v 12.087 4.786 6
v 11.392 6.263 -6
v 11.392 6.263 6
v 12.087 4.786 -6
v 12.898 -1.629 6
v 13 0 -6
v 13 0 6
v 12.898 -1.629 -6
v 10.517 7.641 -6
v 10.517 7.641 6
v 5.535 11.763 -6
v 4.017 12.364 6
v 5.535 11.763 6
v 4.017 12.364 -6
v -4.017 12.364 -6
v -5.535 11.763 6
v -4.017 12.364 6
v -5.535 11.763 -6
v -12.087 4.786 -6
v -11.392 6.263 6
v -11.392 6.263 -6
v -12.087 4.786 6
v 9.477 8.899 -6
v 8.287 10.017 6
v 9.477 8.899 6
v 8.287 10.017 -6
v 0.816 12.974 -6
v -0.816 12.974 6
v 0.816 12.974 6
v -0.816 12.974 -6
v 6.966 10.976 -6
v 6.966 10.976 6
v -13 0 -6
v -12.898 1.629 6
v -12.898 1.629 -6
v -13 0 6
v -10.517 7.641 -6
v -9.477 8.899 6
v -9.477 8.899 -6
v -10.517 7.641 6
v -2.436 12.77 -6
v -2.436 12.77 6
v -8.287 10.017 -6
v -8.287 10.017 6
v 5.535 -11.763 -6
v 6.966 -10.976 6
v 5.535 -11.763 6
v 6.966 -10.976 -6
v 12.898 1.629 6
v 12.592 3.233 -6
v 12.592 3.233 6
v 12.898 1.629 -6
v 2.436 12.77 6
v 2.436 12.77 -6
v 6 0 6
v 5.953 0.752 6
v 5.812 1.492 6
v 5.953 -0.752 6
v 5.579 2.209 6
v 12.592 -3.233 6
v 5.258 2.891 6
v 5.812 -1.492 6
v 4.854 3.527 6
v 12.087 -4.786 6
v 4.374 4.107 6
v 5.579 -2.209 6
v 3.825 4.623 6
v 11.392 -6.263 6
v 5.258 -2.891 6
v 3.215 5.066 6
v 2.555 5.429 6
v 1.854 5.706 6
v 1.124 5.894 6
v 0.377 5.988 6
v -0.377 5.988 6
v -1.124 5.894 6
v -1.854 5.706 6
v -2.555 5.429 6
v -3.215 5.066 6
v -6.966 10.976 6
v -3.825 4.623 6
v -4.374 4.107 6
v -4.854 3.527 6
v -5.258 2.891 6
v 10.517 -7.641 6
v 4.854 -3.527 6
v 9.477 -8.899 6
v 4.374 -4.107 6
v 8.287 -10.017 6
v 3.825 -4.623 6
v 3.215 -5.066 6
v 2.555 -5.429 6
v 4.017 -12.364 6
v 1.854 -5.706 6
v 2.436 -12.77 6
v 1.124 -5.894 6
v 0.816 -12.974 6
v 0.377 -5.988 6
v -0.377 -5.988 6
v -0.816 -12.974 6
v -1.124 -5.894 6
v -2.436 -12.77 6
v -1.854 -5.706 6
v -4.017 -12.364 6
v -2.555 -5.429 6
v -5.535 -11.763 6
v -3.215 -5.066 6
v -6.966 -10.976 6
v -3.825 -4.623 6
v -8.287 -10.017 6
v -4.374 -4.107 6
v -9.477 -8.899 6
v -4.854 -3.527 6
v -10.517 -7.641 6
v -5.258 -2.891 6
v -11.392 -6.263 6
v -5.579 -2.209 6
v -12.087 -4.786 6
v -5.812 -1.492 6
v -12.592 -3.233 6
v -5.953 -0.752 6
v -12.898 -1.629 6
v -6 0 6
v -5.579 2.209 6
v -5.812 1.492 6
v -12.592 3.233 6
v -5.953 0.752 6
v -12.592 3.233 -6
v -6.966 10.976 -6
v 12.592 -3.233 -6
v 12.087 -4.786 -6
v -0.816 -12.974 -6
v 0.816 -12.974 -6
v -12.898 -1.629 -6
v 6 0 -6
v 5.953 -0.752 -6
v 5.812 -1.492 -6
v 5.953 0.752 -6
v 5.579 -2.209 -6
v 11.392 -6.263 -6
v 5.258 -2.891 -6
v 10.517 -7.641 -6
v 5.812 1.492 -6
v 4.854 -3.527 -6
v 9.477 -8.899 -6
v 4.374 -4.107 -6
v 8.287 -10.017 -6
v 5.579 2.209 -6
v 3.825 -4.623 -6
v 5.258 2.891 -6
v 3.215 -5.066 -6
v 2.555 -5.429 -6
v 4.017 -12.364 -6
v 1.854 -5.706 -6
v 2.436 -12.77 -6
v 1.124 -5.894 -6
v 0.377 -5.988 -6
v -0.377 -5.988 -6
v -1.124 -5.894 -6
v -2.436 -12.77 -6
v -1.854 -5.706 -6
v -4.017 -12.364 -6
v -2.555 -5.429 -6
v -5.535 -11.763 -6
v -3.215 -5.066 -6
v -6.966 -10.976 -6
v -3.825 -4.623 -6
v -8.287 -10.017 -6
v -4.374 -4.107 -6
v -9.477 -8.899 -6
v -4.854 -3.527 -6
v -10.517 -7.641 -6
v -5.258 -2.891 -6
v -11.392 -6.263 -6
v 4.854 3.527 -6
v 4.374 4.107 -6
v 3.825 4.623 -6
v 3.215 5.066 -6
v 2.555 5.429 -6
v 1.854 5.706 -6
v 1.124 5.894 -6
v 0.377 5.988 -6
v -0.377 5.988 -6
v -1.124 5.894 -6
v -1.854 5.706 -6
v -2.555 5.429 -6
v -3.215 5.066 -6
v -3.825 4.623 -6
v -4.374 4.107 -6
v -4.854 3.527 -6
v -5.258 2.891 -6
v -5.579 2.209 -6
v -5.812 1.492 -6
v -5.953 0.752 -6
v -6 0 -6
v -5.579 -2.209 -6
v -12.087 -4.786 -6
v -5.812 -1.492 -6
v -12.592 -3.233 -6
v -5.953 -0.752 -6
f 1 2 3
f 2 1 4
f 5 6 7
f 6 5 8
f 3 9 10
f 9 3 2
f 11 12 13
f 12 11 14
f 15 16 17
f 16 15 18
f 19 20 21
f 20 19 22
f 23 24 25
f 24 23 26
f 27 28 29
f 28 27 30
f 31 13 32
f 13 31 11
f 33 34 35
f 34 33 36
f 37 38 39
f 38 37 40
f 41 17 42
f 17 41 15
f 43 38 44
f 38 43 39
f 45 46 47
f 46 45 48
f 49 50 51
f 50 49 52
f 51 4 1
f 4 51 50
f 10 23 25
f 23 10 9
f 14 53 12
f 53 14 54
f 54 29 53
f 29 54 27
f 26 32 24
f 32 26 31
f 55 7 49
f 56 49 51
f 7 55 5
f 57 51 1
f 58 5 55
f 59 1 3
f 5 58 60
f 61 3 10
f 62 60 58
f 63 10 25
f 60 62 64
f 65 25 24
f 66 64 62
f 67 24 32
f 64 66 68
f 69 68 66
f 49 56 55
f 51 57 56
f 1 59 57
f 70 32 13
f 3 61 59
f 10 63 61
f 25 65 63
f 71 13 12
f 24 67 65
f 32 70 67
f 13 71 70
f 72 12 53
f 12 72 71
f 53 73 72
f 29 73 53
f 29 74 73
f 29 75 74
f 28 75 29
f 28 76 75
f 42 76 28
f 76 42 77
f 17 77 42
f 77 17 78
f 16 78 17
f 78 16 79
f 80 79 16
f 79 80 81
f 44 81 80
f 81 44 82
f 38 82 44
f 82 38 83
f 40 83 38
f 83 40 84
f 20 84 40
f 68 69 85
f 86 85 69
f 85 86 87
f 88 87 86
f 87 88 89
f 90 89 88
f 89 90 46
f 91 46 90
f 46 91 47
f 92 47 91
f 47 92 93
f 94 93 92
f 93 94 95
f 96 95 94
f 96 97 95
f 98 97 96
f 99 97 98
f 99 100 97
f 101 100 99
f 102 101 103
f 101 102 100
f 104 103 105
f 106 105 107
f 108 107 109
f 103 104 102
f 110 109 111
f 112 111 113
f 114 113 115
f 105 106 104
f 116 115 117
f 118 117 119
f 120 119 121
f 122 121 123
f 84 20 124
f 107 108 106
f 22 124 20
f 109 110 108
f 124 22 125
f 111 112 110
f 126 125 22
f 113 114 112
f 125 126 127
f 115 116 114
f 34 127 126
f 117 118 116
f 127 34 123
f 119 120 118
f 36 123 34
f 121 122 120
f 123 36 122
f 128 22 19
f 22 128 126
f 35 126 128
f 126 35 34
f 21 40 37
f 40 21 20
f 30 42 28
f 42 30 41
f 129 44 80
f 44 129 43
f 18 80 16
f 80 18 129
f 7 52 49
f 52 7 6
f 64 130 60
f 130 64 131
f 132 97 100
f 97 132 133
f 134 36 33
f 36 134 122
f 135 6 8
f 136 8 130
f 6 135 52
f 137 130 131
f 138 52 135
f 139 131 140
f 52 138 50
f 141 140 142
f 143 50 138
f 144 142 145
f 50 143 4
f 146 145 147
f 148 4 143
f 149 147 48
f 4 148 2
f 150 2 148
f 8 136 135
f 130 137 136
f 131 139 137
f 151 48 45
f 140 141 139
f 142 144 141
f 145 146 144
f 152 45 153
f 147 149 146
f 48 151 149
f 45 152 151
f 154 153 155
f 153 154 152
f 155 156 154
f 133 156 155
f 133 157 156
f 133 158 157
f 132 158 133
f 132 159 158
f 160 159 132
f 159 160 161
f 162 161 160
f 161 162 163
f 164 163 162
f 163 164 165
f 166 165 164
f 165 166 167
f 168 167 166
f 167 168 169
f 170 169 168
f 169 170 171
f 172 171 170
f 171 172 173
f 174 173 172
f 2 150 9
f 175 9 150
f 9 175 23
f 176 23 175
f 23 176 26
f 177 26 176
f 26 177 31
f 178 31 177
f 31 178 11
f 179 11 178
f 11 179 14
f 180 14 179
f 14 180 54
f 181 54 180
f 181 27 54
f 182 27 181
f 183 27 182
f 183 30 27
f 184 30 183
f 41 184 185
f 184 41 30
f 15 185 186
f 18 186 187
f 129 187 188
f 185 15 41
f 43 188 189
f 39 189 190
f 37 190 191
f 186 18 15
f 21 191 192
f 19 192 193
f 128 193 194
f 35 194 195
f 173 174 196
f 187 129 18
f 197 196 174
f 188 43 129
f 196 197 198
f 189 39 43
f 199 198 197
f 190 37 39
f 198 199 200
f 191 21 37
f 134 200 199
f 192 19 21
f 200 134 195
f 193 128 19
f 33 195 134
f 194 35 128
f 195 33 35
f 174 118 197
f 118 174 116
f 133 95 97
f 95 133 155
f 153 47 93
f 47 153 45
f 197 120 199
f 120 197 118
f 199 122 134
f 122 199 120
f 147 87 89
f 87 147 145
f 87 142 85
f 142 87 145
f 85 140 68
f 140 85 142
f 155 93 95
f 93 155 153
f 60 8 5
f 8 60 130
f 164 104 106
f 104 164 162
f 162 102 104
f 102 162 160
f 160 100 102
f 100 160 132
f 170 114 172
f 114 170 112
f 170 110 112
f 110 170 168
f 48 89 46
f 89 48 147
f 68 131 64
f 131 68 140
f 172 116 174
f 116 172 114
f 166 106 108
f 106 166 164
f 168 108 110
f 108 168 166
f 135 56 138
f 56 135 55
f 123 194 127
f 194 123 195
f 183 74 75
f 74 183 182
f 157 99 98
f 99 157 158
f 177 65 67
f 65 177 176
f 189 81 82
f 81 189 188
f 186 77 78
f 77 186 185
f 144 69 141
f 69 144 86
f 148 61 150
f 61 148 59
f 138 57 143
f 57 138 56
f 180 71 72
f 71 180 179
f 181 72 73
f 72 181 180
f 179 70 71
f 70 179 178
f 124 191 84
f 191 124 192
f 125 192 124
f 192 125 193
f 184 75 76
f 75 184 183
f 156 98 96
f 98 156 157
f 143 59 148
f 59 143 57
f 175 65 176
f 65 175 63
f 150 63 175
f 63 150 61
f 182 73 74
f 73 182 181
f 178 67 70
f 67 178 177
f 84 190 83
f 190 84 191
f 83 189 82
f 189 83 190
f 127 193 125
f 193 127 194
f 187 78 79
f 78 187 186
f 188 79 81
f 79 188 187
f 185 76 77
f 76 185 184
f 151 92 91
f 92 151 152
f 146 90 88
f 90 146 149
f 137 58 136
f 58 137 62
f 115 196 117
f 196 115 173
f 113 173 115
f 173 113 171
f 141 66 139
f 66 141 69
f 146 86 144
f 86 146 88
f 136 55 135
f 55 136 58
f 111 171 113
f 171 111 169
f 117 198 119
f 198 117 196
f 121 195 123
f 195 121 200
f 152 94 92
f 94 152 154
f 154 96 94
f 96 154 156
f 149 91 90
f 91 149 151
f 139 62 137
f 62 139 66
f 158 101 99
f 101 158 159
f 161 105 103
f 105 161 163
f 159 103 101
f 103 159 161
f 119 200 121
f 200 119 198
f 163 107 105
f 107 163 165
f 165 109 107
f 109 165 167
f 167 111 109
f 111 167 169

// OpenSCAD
$fn = 50;


difference() {
	union() {
		translate(v = [0, 0, -6.0000000000]) {
			cylinder(h = 12, r = 13.0000000000);
		}
	}
	union() {
		translate(v = [0, 0, -100.0000000000]) {
			cylinder(h = 200, r = 6);
		}
	}
}
